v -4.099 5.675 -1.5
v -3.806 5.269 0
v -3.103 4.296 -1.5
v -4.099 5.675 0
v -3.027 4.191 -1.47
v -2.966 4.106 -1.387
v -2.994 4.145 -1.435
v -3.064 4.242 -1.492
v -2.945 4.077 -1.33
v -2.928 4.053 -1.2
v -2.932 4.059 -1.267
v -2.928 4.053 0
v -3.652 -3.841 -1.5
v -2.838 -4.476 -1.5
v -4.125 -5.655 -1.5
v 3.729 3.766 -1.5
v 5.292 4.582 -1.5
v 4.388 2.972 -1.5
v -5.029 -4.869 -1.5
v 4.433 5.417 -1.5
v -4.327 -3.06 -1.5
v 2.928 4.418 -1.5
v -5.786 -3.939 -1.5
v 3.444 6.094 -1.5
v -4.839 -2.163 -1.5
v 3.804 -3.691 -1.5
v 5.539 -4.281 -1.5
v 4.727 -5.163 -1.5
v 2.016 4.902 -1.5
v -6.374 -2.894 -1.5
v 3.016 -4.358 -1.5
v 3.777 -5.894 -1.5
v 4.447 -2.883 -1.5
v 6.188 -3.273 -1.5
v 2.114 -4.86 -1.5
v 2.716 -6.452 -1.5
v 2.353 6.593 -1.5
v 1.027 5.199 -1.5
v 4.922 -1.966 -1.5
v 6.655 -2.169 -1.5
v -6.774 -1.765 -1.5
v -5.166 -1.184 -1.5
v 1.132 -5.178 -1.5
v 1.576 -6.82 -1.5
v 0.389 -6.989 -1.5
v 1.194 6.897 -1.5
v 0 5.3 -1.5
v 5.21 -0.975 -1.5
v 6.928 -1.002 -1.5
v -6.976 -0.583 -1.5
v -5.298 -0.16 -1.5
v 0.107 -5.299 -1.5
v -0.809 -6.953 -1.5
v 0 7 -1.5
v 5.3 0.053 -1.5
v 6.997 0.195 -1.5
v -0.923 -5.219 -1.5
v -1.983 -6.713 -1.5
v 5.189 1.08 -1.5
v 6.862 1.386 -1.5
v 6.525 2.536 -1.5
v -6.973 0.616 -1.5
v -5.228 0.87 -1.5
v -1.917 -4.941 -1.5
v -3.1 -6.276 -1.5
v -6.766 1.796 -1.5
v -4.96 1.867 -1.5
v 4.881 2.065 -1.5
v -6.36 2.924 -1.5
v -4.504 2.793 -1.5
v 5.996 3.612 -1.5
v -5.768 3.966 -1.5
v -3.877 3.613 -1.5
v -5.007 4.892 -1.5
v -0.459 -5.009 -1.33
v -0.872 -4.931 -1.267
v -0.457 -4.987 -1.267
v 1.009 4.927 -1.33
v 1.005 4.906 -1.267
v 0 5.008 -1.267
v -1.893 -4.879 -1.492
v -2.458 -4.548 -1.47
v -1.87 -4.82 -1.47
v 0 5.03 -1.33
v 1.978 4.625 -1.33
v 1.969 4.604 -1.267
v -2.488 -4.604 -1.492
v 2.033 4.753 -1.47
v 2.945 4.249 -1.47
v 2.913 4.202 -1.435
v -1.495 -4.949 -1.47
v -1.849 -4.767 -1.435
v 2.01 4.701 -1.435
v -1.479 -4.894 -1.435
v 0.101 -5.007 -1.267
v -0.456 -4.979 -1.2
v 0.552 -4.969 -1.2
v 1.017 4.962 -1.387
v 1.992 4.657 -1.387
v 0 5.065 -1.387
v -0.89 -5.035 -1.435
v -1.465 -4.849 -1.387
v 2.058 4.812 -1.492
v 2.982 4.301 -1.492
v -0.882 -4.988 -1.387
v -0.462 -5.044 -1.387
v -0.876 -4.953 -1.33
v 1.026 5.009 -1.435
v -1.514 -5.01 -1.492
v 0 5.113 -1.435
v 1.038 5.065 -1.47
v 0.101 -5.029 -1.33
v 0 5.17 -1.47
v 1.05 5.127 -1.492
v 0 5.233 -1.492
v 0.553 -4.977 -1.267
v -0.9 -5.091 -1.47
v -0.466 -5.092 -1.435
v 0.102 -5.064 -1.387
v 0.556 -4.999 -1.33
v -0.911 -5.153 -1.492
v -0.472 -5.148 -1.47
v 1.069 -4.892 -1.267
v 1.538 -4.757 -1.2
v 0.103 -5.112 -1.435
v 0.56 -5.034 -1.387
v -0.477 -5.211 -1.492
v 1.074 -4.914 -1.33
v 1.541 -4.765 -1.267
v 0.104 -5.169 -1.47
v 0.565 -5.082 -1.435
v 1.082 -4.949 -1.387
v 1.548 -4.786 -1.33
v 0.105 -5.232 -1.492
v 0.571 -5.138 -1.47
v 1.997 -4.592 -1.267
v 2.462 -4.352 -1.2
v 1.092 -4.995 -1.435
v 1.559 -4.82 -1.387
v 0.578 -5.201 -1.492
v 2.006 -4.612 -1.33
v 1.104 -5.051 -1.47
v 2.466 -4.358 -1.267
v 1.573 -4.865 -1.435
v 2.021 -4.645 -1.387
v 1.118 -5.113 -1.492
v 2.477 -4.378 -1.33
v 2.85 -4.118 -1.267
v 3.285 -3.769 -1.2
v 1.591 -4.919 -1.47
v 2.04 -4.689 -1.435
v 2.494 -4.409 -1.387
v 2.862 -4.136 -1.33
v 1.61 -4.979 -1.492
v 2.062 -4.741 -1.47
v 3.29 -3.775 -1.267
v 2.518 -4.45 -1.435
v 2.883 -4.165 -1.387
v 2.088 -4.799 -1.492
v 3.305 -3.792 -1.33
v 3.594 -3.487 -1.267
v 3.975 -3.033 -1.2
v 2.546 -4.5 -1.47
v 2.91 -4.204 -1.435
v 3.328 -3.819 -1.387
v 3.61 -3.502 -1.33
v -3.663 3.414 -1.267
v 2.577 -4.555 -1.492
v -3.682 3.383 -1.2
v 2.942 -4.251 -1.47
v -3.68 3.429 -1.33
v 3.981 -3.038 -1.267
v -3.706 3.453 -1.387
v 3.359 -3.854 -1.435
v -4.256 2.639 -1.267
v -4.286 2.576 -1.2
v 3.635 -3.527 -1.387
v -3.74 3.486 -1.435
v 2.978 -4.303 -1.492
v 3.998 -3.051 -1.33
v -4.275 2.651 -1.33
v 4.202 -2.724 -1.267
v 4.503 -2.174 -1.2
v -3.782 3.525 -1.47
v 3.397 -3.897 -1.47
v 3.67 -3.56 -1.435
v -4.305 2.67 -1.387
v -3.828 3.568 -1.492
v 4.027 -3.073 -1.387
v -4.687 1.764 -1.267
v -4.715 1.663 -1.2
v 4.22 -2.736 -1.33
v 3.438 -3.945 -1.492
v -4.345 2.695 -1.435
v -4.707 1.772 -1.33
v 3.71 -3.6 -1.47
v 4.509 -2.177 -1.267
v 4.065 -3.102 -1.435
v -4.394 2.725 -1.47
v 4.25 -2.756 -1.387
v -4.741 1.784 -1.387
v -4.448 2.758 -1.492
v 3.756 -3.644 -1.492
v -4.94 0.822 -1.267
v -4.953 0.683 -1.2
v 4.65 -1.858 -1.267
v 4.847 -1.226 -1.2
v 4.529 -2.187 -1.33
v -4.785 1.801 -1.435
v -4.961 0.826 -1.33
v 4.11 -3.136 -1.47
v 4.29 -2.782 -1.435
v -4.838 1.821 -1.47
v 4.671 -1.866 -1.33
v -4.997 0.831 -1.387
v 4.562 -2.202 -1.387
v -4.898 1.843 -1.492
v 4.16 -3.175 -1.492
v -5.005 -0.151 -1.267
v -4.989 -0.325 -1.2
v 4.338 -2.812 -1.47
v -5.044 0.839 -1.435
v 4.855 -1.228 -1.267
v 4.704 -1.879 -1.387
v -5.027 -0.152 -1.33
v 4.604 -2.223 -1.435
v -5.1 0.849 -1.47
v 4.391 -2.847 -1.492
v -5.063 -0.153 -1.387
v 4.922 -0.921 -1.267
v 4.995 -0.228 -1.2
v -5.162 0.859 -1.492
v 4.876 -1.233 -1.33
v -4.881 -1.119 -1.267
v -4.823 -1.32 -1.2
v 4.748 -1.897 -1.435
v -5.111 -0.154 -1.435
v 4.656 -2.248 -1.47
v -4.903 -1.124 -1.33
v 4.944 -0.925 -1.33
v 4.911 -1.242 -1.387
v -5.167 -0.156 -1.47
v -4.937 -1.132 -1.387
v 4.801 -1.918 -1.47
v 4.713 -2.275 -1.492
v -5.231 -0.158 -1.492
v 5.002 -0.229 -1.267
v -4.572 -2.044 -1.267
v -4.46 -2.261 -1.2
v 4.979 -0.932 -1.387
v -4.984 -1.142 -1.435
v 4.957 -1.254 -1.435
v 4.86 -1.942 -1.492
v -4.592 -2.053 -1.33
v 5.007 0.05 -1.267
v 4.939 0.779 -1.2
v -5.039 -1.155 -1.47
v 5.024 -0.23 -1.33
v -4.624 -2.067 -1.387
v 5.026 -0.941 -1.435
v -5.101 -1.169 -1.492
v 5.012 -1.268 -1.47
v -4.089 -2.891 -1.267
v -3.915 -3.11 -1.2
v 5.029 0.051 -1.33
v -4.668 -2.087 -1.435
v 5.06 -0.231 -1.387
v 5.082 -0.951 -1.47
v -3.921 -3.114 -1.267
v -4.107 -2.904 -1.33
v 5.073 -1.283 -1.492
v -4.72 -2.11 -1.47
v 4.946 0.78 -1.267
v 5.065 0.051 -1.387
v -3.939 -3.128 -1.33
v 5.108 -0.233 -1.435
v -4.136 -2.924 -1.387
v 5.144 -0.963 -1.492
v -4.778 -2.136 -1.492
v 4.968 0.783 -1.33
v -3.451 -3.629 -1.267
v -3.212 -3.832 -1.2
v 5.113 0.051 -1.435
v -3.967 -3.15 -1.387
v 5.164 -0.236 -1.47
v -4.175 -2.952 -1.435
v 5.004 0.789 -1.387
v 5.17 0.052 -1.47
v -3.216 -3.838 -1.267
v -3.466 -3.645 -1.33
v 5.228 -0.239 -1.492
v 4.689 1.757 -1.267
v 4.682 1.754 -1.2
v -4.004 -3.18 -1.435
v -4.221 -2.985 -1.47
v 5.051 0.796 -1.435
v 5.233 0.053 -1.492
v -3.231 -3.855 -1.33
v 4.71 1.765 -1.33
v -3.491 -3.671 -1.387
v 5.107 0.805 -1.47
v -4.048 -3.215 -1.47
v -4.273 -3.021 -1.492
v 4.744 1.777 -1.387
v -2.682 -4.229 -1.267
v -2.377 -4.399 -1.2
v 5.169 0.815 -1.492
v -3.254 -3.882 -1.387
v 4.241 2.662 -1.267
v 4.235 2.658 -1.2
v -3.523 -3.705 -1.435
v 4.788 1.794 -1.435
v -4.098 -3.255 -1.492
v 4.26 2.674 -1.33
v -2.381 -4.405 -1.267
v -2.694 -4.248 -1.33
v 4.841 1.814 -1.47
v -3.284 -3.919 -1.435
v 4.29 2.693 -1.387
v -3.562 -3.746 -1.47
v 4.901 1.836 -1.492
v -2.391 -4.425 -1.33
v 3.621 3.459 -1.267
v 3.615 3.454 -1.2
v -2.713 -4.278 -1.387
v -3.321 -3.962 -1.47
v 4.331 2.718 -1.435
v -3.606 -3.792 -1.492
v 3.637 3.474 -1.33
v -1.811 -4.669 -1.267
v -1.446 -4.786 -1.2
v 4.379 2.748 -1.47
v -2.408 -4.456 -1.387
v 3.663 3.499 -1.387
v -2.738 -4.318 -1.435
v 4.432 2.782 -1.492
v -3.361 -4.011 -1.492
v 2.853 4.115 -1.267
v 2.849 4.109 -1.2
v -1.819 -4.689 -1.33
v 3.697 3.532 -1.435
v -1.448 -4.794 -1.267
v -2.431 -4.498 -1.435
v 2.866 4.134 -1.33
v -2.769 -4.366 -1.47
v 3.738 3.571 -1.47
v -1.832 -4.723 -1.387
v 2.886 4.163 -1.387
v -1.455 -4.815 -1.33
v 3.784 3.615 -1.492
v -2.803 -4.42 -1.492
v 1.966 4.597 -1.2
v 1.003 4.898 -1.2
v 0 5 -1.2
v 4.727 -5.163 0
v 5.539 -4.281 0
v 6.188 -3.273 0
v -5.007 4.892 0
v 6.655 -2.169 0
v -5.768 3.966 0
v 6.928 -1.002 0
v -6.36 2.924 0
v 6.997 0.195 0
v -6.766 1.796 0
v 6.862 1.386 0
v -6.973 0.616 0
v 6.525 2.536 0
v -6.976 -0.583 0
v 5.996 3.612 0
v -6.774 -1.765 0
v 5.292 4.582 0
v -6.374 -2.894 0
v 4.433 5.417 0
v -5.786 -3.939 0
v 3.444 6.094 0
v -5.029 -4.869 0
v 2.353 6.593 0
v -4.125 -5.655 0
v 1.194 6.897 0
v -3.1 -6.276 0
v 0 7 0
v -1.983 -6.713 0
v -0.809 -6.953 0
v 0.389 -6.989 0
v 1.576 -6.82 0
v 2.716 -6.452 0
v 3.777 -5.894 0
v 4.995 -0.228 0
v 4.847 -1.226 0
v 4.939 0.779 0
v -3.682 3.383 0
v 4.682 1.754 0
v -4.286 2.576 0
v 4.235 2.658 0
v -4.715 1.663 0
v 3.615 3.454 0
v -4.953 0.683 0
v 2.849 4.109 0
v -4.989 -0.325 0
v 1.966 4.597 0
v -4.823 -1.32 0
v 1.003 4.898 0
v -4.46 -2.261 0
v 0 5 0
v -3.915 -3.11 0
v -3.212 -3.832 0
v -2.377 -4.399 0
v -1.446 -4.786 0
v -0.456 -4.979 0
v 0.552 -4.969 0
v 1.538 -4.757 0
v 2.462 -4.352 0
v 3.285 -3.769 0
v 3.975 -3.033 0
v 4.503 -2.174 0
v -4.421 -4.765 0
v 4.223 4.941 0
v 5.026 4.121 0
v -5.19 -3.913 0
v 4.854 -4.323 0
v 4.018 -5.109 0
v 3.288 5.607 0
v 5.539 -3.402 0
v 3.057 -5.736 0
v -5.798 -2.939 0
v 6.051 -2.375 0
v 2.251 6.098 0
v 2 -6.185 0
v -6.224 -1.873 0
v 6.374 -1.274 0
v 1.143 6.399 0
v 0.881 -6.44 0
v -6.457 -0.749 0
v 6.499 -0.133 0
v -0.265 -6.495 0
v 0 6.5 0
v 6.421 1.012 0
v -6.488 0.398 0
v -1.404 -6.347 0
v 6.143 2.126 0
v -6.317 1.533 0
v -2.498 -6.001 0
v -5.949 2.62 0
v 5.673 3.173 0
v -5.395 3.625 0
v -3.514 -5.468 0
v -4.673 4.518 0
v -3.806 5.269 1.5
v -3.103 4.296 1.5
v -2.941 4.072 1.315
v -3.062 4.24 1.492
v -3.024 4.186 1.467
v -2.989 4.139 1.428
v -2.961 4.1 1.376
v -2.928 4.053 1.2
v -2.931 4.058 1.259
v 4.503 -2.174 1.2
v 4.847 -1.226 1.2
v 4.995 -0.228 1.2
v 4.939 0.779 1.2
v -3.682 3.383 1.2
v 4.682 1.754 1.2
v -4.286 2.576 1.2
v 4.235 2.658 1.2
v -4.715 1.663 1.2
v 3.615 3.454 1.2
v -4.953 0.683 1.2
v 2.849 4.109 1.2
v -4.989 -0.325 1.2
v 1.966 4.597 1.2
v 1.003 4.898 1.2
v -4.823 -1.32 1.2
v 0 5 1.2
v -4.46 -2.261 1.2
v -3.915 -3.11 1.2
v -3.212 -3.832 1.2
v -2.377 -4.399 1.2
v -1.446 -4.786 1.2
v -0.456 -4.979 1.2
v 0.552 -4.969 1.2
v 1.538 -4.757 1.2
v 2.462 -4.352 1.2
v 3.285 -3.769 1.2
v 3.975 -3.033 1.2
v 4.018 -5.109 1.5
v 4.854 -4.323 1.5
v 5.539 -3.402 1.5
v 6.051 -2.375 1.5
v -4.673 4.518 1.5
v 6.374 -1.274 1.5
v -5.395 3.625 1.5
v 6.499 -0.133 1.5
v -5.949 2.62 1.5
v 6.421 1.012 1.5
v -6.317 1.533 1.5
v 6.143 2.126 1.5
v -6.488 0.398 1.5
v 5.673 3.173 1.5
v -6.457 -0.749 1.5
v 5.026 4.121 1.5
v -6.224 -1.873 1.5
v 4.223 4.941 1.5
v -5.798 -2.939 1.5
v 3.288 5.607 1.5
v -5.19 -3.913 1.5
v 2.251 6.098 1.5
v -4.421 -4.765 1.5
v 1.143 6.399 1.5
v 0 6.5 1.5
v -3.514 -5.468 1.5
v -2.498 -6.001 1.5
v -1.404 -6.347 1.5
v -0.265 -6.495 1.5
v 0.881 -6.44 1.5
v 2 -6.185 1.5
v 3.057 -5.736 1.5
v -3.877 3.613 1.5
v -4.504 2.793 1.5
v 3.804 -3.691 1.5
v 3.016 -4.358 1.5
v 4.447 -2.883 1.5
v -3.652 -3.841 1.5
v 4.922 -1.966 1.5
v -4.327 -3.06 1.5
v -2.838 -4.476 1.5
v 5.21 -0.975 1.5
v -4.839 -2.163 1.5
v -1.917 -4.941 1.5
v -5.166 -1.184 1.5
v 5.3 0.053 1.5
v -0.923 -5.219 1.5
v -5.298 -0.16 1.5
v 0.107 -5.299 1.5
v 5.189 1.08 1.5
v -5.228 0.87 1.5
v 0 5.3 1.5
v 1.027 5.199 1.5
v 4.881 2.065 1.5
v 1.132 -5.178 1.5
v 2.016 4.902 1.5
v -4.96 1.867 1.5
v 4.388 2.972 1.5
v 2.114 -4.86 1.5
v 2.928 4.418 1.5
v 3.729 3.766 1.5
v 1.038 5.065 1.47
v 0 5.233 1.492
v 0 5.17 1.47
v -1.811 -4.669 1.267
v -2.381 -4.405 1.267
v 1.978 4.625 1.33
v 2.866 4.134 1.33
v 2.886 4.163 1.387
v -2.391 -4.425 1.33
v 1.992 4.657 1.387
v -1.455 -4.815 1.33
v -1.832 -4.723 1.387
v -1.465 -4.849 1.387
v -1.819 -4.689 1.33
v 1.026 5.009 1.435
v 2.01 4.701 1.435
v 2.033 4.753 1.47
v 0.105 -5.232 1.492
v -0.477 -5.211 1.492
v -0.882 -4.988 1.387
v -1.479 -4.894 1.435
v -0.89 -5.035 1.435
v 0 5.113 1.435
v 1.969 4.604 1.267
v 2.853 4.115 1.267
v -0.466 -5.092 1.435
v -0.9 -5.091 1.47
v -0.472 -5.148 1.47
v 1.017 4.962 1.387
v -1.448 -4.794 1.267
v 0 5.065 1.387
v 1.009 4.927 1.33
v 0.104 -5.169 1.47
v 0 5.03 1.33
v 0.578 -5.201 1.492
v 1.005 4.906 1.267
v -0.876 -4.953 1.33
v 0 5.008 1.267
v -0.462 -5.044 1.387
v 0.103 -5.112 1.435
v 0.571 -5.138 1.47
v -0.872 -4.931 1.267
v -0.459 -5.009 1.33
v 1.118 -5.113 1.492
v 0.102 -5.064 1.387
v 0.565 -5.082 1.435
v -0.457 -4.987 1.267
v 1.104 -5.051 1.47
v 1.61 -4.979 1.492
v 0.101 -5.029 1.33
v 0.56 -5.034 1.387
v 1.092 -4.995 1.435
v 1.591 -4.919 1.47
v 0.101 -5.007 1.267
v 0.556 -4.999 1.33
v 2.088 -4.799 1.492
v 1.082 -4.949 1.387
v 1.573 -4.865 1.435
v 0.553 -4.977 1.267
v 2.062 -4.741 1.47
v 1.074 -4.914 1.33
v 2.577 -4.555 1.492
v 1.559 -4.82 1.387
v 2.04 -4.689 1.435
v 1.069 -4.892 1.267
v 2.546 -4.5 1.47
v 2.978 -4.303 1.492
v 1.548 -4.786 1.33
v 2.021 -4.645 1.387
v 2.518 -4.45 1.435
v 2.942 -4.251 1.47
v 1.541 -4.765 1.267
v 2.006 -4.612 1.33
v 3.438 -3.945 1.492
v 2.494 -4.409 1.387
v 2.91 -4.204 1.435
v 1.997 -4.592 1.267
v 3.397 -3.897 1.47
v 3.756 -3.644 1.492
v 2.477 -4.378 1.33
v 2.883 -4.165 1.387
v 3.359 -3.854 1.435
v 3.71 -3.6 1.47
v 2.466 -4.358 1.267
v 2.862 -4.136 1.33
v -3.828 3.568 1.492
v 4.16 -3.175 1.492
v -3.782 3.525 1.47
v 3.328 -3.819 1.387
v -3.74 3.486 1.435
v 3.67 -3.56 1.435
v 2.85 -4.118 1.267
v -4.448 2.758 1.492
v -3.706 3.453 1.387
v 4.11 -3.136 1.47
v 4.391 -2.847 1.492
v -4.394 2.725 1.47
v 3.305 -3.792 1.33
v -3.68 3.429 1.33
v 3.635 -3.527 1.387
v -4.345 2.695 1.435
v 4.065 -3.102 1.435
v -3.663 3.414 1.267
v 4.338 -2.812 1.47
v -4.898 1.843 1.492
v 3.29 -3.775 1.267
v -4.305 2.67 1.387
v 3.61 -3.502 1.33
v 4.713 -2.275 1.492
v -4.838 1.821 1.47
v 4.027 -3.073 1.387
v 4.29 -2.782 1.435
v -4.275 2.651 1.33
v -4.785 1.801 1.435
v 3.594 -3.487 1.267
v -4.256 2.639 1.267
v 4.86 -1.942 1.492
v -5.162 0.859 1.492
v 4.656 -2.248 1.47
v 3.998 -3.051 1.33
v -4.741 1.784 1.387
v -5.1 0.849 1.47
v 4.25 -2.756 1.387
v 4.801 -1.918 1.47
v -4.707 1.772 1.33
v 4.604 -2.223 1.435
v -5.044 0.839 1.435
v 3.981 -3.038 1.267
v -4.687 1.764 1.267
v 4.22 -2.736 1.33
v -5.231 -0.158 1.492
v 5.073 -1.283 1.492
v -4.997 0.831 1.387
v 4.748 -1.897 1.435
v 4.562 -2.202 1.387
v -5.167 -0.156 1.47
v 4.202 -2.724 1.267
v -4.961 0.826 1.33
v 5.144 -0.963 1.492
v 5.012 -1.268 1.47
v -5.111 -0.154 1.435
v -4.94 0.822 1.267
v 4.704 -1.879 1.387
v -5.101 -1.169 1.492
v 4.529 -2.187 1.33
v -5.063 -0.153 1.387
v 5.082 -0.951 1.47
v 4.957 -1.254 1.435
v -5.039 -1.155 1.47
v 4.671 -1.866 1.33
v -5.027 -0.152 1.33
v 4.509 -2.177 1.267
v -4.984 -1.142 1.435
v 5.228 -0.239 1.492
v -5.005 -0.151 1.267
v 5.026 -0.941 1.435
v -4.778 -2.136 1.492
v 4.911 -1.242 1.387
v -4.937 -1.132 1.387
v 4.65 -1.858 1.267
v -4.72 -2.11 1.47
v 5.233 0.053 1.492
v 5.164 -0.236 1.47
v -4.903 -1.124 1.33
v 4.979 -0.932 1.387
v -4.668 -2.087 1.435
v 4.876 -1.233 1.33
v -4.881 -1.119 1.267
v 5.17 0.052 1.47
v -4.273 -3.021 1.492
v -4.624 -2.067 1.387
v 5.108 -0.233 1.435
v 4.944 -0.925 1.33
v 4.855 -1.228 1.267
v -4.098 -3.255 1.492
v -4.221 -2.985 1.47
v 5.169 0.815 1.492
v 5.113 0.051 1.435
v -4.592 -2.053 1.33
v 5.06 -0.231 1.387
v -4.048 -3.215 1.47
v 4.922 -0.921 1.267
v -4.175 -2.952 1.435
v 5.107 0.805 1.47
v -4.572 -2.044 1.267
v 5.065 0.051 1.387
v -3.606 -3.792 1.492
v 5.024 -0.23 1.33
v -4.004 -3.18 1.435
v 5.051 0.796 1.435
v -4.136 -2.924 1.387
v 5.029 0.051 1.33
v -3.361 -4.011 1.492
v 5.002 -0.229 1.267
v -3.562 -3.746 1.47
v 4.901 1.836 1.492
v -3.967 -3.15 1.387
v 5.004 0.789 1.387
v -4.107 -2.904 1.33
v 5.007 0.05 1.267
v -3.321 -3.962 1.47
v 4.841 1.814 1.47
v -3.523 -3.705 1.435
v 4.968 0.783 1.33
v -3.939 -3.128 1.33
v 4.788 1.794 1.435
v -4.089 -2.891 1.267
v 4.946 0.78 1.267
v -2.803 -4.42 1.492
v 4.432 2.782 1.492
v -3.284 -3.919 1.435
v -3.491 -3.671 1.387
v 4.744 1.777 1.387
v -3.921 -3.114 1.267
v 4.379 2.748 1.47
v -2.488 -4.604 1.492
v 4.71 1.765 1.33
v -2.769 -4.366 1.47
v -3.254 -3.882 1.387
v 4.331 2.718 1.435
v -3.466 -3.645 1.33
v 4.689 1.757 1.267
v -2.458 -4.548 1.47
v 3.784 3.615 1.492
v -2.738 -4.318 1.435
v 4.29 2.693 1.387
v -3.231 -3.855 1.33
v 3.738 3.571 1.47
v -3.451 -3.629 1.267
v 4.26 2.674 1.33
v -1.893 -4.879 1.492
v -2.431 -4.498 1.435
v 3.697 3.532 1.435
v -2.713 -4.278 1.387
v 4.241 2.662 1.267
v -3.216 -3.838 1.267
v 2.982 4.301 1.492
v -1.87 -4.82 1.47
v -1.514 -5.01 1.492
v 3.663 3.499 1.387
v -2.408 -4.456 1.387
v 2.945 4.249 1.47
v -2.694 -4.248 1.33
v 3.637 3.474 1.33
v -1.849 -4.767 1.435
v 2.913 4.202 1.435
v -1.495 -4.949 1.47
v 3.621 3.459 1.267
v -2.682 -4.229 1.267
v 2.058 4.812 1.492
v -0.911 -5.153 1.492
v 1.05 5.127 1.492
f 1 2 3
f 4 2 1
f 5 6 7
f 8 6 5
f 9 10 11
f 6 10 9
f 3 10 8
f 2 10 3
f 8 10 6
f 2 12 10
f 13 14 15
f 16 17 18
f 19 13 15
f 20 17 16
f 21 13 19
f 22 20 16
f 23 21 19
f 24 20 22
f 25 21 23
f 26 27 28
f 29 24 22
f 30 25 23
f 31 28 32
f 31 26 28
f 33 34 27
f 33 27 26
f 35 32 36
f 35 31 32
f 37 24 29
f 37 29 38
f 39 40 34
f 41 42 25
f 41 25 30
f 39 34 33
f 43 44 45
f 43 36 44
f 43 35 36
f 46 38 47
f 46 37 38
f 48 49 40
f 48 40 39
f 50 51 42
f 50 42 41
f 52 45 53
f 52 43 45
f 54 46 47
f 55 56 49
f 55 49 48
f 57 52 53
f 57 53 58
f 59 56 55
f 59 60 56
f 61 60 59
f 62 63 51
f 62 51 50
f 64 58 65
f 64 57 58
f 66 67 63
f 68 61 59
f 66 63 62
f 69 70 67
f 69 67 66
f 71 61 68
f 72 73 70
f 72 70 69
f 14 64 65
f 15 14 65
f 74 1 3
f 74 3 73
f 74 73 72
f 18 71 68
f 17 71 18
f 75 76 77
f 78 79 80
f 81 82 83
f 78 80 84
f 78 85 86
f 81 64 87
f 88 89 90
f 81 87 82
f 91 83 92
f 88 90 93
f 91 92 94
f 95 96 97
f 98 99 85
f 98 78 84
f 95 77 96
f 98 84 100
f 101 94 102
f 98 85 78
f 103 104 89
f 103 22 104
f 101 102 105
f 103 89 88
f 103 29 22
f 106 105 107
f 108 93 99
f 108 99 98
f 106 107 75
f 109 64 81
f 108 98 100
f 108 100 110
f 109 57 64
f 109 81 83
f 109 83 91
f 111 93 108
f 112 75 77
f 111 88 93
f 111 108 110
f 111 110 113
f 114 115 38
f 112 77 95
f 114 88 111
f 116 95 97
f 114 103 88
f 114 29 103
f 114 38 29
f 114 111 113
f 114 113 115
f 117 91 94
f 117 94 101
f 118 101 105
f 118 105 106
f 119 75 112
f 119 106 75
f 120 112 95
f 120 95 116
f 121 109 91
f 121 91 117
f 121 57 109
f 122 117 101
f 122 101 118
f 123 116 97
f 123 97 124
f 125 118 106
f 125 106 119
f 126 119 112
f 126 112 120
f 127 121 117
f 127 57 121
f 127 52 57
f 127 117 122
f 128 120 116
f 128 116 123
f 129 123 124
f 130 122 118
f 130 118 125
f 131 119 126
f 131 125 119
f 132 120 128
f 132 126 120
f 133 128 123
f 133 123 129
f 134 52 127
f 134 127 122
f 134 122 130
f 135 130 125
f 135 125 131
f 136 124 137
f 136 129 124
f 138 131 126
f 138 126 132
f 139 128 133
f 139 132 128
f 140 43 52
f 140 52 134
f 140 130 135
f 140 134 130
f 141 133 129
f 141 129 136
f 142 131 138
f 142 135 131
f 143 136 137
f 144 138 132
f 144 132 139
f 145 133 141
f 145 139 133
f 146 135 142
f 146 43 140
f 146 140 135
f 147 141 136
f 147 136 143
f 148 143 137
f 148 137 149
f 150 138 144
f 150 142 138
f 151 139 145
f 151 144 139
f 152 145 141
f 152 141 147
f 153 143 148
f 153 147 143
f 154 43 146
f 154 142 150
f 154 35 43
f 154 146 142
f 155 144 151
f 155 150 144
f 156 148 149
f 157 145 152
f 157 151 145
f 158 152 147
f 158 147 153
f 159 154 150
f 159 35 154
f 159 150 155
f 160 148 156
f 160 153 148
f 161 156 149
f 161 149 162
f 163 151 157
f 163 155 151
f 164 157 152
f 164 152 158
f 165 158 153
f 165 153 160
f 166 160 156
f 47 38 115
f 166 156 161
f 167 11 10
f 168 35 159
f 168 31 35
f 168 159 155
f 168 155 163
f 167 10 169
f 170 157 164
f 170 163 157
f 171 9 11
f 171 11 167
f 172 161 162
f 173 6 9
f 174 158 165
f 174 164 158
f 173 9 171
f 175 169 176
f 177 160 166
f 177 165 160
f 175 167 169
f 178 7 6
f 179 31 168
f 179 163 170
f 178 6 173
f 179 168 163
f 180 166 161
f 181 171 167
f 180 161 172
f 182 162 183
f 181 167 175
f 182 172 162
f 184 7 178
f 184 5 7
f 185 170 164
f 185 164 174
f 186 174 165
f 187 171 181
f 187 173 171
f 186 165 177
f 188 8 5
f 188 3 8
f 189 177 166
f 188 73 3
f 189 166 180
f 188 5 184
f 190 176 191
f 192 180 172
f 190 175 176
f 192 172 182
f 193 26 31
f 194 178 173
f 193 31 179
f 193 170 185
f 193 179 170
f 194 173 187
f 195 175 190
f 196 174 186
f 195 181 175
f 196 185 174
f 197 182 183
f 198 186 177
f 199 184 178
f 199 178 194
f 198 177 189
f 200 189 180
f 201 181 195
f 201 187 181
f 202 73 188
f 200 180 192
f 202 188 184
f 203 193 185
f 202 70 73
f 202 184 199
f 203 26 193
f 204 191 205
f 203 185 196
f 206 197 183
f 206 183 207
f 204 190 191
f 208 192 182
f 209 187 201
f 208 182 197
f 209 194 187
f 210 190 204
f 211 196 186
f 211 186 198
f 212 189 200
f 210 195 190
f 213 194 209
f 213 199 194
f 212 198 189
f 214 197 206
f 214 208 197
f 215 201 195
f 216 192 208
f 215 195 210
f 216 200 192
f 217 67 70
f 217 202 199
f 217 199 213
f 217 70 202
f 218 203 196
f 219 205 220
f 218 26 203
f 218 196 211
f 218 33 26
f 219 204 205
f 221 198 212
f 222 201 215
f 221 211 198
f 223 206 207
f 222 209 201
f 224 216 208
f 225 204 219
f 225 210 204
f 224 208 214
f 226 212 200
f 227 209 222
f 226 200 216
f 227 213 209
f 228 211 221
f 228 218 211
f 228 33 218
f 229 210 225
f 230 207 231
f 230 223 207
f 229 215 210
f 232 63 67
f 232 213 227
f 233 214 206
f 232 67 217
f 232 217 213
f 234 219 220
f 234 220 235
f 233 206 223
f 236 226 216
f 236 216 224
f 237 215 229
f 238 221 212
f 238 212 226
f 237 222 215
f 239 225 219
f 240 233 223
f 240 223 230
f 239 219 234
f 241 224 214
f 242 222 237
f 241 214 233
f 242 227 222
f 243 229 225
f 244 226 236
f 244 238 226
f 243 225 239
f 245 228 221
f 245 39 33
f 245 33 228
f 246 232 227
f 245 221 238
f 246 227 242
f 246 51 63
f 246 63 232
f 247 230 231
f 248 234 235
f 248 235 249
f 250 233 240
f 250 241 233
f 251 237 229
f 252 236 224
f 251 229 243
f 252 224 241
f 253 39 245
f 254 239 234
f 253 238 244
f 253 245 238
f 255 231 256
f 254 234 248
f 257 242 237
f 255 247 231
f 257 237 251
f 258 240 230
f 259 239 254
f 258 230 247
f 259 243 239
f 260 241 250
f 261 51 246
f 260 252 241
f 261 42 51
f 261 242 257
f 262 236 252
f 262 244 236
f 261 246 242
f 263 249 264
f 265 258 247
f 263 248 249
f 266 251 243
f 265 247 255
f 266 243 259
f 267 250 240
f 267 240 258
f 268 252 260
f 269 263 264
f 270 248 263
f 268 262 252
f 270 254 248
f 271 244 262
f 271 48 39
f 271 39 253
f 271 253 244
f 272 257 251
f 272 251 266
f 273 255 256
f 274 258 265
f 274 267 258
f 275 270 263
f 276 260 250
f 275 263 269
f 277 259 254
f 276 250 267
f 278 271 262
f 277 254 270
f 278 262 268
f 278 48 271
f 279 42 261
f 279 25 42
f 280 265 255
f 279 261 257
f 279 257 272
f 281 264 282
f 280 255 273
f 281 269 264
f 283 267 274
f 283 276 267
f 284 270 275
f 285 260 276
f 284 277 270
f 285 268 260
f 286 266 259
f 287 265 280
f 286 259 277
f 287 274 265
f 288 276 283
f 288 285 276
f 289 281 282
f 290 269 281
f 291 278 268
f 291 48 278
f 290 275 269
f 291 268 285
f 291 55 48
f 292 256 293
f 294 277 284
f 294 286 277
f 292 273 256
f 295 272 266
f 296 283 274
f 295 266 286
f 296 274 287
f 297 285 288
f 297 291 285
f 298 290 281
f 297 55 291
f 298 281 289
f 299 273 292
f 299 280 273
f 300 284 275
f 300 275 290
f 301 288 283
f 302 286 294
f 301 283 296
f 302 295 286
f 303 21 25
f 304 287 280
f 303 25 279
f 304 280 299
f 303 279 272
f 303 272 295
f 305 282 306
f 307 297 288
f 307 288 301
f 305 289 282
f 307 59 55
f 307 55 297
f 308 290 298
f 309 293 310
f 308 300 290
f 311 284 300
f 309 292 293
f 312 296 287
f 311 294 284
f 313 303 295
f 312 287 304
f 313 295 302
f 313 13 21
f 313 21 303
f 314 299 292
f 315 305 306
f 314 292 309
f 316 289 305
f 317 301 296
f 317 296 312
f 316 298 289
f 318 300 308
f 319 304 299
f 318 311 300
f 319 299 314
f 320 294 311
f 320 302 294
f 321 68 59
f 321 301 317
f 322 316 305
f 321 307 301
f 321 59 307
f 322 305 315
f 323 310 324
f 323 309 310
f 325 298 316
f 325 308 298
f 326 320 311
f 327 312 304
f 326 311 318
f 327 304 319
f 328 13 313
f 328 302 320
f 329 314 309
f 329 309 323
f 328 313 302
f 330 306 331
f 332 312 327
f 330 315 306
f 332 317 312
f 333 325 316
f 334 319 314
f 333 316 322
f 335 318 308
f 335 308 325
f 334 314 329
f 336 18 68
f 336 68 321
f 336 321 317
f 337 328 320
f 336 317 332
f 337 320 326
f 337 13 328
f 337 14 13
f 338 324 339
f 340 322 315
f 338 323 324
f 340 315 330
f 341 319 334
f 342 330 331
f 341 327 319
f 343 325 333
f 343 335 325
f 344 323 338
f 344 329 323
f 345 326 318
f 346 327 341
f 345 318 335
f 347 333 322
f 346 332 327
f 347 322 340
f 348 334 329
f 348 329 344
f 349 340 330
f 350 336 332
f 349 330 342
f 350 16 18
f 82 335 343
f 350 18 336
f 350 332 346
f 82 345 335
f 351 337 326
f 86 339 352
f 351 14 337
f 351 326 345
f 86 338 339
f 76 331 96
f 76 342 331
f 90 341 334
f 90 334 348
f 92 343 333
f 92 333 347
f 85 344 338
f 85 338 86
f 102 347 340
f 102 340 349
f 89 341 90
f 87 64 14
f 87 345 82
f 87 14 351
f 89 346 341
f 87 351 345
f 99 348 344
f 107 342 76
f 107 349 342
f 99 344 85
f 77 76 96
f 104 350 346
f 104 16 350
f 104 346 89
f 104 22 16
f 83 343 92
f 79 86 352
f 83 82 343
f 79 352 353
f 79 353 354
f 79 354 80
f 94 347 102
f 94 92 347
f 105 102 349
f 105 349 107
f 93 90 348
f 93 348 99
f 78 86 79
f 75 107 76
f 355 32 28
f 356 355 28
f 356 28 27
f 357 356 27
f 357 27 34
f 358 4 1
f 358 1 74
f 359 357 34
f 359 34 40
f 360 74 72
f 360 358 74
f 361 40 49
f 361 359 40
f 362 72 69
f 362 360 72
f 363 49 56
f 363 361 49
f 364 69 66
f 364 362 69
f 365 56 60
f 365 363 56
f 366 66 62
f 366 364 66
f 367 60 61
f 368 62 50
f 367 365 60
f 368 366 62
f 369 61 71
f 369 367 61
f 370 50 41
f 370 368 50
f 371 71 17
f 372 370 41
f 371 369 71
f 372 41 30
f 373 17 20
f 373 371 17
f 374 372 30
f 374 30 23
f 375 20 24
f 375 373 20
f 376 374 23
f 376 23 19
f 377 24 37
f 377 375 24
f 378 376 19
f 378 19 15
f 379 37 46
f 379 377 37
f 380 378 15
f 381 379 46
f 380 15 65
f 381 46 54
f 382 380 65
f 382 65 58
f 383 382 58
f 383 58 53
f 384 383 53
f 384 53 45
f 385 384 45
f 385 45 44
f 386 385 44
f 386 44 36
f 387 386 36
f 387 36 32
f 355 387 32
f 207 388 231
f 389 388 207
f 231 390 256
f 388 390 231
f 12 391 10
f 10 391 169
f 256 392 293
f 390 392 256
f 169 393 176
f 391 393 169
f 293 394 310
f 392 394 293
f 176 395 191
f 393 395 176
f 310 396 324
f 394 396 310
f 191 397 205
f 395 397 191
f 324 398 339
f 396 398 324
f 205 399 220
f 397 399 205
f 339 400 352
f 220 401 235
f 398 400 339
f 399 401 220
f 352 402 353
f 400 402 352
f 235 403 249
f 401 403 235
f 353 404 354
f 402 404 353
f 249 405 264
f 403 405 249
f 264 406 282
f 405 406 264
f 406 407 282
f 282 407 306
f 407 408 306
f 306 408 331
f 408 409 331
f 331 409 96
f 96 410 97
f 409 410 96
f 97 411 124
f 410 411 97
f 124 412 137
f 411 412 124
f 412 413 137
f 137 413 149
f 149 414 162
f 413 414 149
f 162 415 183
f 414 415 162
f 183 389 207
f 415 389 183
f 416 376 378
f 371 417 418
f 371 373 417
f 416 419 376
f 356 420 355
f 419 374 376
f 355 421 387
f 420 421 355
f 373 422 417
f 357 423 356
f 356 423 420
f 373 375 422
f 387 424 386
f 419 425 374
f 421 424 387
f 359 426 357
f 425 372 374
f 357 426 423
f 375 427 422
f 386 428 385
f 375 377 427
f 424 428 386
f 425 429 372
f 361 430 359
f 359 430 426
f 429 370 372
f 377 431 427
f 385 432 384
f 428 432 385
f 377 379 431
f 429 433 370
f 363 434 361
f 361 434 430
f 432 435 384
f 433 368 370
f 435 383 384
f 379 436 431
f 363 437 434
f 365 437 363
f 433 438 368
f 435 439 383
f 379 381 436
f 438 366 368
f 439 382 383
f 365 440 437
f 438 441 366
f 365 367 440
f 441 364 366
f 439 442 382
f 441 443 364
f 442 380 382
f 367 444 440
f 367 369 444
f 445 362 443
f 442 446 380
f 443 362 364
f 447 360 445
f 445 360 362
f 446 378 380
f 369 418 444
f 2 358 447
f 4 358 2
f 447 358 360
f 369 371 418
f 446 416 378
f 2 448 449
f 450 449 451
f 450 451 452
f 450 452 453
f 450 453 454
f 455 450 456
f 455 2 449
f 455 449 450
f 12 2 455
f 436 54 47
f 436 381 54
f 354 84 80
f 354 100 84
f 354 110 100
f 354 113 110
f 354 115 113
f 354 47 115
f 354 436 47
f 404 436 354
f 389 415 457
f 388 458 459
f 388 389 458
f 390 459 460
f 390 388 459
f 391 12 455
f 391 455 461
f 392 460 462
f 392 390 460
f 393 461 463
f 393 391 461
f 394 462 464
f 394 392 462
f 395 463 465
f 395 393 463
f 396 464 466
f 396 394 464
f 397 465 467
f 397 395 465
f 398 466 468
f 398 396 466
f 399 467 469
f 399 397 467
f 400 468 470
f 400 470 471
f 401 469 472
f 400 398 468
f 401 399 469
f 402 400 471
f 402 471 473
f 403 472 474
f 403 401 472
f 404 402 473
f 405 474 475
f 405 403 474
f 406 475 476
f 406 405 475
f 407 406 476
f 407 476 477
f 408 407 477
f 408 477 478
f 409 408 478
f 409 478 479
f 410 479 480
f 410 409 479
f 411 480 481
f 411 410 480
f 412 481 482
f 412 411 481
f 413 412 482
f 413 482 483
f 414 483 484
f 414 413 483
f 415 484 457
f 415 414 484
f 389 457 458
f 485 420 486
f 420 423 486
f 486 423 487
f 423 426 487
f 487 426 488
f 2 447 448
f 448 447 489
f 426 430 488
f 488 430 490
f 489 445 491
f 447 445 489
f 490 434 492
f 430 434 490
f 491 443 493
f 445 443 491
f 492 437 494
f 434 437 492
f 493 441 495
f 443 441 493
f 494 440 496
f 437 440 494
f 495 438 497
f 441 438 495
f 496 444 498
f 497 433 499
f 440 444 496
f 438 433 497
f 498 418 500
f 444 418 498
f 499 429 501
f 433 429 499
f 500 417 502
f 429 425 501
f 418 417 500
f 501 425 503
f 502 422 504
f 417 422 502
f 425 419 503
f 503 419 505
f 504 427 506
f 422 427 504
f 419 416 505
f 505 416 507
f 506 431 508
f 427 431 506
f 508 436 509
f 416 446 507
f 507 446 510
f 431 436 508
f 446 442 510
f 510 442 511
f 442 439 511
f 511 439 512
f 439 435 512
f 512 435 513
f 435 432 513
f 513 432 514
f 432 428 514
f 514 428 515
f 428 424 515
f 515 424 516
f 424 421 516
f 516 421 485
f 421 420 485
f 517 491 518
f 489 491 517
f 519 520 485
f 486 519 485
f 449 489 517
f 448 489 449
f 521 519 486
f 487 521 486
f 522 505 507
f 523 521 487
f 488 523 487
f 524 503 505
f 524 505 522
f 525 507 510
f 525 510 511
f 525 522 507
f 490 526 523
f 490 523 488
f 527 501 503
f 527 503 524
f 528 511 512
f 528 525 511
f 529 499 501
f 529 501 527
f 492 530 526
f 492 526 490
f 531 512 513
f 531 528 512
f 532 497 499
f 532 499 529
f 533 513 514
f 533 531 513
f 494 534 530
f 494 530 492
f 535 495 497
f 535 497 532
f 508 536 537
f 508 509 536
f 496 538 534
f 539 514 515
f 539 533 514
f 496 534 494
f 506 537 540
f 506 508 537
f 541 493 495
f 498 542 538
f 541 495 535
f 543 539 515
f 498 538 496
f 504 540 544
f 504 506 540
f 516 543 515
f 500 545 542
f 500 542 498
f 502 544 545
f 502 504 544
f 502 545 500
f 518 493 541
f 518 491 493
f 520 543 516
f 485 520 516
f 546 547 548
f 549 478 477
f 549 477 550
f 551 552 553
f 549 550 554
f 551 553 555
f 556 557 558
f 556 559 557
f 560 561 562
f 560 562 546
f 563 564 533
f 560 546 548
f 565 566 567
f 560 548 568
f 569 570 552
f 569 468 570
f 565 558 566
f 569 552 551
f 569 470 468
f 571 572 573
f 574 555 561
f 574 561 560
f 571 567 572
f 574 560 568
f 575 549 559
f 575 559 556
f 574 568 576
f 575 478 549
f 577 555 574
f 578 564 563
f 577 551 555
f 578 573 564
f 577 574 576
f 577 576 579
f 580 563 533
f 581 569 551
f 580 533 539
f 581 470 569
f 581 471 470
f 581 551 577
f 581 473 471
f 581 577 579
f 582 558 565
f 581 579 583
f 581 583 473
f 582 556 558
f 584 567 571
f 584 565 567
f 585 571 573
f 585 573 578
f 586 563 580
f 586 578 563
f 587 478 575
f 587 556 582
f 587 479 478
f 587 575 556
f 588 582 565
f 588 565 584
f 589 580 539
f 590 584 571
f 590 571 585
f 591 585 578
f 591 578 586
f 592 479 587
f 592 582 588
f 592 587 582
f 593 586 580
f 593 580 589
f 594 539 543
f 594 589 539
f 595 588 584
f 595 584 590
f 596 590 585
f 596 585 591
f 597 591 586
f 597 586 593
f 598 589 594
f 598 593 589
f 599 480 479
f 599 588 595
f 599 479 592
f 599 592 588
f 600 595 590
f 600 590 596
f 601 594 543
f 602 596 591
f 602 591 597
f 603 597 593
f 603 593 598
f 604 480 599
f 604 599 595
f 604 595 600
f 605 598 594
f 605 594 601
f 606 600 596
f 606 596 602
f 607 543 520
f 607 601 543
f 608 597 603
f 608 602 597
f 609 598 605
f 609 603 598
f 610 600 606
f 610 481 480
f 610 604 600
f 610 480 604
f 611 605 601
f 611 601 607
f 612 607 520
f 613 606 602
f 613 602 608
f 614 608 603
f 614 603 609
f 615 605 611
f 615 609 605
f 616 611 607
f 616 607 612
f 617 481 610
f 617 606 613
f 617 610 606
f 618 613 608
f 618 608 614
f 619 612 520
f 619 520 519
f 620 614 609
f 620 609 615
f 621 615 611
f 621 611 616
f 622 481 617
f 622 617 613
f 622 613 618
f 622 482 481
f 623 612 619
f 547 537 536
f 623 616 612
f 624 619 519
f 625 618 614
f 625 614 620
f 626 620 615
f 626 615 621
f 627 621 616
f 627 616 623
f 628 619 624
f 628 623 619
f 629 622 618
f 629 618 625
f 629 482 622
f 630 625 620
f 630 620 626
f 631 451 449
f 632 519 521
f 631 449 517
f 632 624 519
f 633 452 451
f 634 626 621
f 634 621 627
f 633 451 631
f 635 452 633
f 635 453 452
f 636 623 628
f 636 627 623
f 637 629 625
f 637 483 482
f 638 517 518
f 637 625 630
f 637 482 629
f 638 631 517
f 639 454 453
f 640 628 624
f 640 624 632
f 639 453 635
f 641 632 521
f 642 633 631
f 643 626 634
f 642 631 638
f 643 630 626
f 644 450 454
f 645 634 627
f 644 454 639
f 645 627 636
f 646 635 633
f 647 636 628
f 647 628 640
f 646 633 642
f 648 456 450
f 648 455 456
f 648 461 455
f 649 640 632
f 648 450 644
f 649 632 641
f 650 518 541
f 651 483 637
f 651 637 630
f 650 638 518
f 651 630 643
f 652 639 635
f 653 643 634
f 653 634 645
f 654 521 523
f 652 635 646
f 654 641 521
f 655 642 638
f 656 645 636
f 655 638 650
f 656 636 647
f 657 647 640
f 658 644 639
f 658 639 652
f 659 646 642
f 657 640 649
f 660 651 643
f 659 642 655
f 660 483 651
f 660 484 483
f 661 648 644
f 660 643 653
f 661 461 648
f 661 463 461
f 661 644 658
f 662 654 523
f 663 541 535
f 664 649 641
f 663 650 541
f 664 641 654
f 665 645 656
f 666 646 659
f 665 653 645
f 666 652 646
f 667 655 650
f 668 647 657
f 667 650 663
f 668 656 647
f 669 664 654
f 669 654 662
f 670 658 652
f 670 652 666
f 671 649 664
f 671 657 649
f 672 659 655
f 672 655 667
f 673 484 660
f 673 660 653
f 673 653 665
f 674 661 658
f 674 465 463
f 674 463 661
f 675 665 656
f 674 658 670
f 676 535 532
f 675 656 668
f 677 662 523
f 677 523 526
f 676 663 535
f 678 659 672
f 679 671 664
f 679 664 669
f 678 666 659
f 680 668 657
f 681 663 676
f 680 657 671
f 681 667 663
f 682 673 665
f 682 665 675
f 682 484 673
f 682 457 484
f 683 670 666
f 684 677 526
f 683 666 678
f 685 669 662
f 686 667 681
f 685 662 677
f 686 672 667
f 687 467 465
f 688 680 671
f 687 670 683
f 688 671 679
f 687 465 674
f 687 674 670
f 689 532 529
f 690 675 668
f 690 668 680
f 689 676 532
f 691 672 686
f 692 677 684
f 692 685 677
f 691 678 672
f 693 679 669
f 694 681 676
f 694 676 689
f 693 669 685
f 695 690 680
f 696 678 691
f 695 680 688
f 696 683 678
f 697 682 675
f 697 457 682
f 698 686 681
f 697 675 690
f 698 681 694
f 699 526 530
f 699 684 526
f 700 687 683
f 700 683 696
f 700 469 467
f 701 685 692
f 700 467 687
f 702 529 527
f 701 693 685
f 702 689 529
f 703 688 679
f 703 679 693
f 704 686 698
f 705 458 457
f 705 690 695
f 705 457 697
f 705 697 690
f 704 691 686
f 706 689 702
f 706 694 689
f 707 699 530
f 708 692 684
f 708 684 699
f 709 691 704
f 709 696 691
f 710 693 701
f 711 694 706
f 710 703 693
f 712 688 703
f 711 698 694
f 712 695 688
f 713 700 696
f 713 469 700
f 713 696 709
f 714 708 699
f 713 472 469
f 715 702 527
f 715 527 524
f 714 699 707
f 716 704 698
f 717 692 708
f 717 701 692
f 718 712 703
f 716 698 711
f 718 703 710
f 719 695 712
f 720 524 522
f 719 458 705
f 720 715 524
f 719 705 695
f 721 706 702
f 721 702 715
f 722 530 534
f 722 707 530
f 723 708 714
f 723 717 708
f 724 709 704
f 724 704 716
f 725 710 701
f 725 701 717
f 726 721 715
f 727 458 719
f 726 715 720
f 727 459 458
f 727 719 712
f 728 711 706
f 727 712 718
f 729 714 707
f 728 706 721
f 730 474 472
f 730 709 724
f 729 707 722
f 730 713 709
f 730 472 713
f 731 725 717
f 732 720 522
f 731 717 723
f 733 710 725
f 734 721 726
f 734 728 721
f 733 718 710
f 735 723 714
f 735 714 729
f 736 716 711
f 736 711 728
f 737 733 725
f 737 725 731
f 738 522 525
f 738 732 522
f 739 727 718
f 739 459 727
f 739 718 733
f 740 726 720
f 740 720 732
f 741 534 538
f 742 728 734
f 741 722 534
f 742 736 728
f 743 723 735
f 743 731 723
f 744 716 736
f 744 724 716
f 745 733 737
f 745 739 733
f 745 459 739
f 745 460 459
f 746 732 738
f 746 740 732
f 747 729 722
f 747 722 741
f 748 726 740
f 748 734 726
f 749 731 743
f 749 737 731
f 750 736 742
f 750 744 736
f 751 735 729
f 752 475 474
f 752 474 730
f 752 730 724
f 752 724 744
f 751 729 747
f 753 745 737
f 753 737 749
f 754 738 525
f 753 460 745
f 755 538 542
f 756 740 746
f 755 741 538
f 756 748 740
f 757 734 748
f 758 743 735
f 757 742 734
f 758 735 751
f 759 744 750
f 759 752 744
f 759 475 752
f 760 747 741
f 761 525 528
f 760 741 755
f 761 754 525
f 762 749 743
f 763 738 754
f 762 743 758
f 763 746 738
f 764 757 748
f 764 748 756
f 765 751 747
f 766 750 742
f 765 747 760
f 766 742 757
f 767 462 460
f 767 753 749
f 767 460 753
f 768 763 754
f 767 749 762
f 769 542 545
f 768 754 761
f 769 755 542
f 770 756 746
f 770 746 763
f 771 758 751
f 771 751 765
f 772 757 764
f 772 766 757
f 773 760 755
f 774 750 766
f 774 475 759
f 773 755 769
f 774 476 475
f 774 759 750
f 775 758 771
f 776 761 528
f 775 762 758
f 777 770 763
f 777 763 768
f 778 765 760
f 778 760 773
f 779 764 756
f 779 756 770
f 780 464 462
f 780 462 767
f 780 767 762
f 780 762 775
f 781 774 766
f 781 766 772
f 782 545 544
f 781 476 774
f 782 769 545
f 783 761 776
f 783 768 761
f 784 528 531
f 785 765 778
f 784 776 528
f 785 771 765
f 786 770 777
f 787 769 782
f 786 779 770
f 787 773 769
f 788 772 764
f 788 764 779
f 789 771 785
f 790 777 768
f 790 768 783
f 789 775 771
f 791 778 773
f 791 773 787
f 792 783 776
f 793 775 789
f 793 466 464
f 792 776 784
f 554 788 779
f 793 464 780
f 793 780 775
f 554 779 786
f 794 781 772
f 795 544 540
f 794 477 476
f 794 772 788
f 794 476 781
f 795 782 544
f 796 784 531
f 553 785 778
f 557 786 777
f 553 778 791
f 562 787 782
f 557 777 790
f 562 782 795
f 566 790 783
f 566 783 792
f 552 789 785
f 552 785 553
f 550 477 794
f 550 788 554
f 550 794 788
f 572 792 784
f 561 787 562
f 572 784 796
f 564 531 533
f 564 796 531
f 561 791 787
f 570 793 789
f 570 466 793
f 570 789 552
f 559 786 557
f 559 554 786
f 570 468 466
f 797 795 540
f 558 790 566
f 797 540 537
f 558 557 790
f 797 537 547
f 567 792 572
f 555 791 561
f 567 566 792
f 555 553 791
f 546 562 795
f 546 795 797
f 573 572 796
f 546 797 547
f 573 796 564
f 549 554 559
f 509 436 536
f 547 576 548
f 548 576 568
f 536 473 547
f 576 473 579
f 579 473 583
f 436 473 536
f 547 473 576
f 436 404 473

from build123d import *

# Parameters (mm, degrees)
PAD_DEPTH    = 1.5
PAD001_DEPTH = 1.5
FILLET_R     = 0.3
FILLET001_R  = 0.3


with BuildPart() as part:
    # Sketch → Pad (new body)
    with BuildSketch(Plane.XY):
        with BuildLine():
            ThreePointArc((-3.805944, 5.269231), (2, -6.184658), (0, 6.5))
            Line((0, 6.5), (0, 5))
            ThreePointArc((-2.927649, 4.053254), (1.538462, -4.75743), (0, 5))
            Line((-3.805944, 5.269231), (-2.927649, 4.053254))
        make_face()
    extrude(amount=PAD_DEPTH)

    # Sketch001 (on Face6 of Pad) → Pad001 (join)
    with BuildSketch(Plane.XY):
        with BuildLine():
            ThreePointArc((-2.927649, 4.053254), (1.538462, -4.75743), (0, 5))
            Line((0, 7), (0, 5))
            ThreePointArc((-4.098709, 5.674556), (2.153846, -6.660401), (0, 7))
            Line((-4.098709, 5.674556), (-2.927649, 4.053254))
        make_face()
    extrude(amount=-PAD001_DEPTH)

    # Fillet
    fillet_edges = [part.edges().sort_by_distance(p)[0] for p in [
        (1.538462, -4.75743, 1.5),
    ]]
    fillet(fillet_edges, radius=FILLET_R)

    # Fillet001
    fillet001_edges = [part.edges().sort_by_distance(p)[0] for p in [
        (1.538462, -4.75743, -1.5),
    ]]
    fillet(fillet001_edges, radius=FILLET001_R)


solid = part.part
